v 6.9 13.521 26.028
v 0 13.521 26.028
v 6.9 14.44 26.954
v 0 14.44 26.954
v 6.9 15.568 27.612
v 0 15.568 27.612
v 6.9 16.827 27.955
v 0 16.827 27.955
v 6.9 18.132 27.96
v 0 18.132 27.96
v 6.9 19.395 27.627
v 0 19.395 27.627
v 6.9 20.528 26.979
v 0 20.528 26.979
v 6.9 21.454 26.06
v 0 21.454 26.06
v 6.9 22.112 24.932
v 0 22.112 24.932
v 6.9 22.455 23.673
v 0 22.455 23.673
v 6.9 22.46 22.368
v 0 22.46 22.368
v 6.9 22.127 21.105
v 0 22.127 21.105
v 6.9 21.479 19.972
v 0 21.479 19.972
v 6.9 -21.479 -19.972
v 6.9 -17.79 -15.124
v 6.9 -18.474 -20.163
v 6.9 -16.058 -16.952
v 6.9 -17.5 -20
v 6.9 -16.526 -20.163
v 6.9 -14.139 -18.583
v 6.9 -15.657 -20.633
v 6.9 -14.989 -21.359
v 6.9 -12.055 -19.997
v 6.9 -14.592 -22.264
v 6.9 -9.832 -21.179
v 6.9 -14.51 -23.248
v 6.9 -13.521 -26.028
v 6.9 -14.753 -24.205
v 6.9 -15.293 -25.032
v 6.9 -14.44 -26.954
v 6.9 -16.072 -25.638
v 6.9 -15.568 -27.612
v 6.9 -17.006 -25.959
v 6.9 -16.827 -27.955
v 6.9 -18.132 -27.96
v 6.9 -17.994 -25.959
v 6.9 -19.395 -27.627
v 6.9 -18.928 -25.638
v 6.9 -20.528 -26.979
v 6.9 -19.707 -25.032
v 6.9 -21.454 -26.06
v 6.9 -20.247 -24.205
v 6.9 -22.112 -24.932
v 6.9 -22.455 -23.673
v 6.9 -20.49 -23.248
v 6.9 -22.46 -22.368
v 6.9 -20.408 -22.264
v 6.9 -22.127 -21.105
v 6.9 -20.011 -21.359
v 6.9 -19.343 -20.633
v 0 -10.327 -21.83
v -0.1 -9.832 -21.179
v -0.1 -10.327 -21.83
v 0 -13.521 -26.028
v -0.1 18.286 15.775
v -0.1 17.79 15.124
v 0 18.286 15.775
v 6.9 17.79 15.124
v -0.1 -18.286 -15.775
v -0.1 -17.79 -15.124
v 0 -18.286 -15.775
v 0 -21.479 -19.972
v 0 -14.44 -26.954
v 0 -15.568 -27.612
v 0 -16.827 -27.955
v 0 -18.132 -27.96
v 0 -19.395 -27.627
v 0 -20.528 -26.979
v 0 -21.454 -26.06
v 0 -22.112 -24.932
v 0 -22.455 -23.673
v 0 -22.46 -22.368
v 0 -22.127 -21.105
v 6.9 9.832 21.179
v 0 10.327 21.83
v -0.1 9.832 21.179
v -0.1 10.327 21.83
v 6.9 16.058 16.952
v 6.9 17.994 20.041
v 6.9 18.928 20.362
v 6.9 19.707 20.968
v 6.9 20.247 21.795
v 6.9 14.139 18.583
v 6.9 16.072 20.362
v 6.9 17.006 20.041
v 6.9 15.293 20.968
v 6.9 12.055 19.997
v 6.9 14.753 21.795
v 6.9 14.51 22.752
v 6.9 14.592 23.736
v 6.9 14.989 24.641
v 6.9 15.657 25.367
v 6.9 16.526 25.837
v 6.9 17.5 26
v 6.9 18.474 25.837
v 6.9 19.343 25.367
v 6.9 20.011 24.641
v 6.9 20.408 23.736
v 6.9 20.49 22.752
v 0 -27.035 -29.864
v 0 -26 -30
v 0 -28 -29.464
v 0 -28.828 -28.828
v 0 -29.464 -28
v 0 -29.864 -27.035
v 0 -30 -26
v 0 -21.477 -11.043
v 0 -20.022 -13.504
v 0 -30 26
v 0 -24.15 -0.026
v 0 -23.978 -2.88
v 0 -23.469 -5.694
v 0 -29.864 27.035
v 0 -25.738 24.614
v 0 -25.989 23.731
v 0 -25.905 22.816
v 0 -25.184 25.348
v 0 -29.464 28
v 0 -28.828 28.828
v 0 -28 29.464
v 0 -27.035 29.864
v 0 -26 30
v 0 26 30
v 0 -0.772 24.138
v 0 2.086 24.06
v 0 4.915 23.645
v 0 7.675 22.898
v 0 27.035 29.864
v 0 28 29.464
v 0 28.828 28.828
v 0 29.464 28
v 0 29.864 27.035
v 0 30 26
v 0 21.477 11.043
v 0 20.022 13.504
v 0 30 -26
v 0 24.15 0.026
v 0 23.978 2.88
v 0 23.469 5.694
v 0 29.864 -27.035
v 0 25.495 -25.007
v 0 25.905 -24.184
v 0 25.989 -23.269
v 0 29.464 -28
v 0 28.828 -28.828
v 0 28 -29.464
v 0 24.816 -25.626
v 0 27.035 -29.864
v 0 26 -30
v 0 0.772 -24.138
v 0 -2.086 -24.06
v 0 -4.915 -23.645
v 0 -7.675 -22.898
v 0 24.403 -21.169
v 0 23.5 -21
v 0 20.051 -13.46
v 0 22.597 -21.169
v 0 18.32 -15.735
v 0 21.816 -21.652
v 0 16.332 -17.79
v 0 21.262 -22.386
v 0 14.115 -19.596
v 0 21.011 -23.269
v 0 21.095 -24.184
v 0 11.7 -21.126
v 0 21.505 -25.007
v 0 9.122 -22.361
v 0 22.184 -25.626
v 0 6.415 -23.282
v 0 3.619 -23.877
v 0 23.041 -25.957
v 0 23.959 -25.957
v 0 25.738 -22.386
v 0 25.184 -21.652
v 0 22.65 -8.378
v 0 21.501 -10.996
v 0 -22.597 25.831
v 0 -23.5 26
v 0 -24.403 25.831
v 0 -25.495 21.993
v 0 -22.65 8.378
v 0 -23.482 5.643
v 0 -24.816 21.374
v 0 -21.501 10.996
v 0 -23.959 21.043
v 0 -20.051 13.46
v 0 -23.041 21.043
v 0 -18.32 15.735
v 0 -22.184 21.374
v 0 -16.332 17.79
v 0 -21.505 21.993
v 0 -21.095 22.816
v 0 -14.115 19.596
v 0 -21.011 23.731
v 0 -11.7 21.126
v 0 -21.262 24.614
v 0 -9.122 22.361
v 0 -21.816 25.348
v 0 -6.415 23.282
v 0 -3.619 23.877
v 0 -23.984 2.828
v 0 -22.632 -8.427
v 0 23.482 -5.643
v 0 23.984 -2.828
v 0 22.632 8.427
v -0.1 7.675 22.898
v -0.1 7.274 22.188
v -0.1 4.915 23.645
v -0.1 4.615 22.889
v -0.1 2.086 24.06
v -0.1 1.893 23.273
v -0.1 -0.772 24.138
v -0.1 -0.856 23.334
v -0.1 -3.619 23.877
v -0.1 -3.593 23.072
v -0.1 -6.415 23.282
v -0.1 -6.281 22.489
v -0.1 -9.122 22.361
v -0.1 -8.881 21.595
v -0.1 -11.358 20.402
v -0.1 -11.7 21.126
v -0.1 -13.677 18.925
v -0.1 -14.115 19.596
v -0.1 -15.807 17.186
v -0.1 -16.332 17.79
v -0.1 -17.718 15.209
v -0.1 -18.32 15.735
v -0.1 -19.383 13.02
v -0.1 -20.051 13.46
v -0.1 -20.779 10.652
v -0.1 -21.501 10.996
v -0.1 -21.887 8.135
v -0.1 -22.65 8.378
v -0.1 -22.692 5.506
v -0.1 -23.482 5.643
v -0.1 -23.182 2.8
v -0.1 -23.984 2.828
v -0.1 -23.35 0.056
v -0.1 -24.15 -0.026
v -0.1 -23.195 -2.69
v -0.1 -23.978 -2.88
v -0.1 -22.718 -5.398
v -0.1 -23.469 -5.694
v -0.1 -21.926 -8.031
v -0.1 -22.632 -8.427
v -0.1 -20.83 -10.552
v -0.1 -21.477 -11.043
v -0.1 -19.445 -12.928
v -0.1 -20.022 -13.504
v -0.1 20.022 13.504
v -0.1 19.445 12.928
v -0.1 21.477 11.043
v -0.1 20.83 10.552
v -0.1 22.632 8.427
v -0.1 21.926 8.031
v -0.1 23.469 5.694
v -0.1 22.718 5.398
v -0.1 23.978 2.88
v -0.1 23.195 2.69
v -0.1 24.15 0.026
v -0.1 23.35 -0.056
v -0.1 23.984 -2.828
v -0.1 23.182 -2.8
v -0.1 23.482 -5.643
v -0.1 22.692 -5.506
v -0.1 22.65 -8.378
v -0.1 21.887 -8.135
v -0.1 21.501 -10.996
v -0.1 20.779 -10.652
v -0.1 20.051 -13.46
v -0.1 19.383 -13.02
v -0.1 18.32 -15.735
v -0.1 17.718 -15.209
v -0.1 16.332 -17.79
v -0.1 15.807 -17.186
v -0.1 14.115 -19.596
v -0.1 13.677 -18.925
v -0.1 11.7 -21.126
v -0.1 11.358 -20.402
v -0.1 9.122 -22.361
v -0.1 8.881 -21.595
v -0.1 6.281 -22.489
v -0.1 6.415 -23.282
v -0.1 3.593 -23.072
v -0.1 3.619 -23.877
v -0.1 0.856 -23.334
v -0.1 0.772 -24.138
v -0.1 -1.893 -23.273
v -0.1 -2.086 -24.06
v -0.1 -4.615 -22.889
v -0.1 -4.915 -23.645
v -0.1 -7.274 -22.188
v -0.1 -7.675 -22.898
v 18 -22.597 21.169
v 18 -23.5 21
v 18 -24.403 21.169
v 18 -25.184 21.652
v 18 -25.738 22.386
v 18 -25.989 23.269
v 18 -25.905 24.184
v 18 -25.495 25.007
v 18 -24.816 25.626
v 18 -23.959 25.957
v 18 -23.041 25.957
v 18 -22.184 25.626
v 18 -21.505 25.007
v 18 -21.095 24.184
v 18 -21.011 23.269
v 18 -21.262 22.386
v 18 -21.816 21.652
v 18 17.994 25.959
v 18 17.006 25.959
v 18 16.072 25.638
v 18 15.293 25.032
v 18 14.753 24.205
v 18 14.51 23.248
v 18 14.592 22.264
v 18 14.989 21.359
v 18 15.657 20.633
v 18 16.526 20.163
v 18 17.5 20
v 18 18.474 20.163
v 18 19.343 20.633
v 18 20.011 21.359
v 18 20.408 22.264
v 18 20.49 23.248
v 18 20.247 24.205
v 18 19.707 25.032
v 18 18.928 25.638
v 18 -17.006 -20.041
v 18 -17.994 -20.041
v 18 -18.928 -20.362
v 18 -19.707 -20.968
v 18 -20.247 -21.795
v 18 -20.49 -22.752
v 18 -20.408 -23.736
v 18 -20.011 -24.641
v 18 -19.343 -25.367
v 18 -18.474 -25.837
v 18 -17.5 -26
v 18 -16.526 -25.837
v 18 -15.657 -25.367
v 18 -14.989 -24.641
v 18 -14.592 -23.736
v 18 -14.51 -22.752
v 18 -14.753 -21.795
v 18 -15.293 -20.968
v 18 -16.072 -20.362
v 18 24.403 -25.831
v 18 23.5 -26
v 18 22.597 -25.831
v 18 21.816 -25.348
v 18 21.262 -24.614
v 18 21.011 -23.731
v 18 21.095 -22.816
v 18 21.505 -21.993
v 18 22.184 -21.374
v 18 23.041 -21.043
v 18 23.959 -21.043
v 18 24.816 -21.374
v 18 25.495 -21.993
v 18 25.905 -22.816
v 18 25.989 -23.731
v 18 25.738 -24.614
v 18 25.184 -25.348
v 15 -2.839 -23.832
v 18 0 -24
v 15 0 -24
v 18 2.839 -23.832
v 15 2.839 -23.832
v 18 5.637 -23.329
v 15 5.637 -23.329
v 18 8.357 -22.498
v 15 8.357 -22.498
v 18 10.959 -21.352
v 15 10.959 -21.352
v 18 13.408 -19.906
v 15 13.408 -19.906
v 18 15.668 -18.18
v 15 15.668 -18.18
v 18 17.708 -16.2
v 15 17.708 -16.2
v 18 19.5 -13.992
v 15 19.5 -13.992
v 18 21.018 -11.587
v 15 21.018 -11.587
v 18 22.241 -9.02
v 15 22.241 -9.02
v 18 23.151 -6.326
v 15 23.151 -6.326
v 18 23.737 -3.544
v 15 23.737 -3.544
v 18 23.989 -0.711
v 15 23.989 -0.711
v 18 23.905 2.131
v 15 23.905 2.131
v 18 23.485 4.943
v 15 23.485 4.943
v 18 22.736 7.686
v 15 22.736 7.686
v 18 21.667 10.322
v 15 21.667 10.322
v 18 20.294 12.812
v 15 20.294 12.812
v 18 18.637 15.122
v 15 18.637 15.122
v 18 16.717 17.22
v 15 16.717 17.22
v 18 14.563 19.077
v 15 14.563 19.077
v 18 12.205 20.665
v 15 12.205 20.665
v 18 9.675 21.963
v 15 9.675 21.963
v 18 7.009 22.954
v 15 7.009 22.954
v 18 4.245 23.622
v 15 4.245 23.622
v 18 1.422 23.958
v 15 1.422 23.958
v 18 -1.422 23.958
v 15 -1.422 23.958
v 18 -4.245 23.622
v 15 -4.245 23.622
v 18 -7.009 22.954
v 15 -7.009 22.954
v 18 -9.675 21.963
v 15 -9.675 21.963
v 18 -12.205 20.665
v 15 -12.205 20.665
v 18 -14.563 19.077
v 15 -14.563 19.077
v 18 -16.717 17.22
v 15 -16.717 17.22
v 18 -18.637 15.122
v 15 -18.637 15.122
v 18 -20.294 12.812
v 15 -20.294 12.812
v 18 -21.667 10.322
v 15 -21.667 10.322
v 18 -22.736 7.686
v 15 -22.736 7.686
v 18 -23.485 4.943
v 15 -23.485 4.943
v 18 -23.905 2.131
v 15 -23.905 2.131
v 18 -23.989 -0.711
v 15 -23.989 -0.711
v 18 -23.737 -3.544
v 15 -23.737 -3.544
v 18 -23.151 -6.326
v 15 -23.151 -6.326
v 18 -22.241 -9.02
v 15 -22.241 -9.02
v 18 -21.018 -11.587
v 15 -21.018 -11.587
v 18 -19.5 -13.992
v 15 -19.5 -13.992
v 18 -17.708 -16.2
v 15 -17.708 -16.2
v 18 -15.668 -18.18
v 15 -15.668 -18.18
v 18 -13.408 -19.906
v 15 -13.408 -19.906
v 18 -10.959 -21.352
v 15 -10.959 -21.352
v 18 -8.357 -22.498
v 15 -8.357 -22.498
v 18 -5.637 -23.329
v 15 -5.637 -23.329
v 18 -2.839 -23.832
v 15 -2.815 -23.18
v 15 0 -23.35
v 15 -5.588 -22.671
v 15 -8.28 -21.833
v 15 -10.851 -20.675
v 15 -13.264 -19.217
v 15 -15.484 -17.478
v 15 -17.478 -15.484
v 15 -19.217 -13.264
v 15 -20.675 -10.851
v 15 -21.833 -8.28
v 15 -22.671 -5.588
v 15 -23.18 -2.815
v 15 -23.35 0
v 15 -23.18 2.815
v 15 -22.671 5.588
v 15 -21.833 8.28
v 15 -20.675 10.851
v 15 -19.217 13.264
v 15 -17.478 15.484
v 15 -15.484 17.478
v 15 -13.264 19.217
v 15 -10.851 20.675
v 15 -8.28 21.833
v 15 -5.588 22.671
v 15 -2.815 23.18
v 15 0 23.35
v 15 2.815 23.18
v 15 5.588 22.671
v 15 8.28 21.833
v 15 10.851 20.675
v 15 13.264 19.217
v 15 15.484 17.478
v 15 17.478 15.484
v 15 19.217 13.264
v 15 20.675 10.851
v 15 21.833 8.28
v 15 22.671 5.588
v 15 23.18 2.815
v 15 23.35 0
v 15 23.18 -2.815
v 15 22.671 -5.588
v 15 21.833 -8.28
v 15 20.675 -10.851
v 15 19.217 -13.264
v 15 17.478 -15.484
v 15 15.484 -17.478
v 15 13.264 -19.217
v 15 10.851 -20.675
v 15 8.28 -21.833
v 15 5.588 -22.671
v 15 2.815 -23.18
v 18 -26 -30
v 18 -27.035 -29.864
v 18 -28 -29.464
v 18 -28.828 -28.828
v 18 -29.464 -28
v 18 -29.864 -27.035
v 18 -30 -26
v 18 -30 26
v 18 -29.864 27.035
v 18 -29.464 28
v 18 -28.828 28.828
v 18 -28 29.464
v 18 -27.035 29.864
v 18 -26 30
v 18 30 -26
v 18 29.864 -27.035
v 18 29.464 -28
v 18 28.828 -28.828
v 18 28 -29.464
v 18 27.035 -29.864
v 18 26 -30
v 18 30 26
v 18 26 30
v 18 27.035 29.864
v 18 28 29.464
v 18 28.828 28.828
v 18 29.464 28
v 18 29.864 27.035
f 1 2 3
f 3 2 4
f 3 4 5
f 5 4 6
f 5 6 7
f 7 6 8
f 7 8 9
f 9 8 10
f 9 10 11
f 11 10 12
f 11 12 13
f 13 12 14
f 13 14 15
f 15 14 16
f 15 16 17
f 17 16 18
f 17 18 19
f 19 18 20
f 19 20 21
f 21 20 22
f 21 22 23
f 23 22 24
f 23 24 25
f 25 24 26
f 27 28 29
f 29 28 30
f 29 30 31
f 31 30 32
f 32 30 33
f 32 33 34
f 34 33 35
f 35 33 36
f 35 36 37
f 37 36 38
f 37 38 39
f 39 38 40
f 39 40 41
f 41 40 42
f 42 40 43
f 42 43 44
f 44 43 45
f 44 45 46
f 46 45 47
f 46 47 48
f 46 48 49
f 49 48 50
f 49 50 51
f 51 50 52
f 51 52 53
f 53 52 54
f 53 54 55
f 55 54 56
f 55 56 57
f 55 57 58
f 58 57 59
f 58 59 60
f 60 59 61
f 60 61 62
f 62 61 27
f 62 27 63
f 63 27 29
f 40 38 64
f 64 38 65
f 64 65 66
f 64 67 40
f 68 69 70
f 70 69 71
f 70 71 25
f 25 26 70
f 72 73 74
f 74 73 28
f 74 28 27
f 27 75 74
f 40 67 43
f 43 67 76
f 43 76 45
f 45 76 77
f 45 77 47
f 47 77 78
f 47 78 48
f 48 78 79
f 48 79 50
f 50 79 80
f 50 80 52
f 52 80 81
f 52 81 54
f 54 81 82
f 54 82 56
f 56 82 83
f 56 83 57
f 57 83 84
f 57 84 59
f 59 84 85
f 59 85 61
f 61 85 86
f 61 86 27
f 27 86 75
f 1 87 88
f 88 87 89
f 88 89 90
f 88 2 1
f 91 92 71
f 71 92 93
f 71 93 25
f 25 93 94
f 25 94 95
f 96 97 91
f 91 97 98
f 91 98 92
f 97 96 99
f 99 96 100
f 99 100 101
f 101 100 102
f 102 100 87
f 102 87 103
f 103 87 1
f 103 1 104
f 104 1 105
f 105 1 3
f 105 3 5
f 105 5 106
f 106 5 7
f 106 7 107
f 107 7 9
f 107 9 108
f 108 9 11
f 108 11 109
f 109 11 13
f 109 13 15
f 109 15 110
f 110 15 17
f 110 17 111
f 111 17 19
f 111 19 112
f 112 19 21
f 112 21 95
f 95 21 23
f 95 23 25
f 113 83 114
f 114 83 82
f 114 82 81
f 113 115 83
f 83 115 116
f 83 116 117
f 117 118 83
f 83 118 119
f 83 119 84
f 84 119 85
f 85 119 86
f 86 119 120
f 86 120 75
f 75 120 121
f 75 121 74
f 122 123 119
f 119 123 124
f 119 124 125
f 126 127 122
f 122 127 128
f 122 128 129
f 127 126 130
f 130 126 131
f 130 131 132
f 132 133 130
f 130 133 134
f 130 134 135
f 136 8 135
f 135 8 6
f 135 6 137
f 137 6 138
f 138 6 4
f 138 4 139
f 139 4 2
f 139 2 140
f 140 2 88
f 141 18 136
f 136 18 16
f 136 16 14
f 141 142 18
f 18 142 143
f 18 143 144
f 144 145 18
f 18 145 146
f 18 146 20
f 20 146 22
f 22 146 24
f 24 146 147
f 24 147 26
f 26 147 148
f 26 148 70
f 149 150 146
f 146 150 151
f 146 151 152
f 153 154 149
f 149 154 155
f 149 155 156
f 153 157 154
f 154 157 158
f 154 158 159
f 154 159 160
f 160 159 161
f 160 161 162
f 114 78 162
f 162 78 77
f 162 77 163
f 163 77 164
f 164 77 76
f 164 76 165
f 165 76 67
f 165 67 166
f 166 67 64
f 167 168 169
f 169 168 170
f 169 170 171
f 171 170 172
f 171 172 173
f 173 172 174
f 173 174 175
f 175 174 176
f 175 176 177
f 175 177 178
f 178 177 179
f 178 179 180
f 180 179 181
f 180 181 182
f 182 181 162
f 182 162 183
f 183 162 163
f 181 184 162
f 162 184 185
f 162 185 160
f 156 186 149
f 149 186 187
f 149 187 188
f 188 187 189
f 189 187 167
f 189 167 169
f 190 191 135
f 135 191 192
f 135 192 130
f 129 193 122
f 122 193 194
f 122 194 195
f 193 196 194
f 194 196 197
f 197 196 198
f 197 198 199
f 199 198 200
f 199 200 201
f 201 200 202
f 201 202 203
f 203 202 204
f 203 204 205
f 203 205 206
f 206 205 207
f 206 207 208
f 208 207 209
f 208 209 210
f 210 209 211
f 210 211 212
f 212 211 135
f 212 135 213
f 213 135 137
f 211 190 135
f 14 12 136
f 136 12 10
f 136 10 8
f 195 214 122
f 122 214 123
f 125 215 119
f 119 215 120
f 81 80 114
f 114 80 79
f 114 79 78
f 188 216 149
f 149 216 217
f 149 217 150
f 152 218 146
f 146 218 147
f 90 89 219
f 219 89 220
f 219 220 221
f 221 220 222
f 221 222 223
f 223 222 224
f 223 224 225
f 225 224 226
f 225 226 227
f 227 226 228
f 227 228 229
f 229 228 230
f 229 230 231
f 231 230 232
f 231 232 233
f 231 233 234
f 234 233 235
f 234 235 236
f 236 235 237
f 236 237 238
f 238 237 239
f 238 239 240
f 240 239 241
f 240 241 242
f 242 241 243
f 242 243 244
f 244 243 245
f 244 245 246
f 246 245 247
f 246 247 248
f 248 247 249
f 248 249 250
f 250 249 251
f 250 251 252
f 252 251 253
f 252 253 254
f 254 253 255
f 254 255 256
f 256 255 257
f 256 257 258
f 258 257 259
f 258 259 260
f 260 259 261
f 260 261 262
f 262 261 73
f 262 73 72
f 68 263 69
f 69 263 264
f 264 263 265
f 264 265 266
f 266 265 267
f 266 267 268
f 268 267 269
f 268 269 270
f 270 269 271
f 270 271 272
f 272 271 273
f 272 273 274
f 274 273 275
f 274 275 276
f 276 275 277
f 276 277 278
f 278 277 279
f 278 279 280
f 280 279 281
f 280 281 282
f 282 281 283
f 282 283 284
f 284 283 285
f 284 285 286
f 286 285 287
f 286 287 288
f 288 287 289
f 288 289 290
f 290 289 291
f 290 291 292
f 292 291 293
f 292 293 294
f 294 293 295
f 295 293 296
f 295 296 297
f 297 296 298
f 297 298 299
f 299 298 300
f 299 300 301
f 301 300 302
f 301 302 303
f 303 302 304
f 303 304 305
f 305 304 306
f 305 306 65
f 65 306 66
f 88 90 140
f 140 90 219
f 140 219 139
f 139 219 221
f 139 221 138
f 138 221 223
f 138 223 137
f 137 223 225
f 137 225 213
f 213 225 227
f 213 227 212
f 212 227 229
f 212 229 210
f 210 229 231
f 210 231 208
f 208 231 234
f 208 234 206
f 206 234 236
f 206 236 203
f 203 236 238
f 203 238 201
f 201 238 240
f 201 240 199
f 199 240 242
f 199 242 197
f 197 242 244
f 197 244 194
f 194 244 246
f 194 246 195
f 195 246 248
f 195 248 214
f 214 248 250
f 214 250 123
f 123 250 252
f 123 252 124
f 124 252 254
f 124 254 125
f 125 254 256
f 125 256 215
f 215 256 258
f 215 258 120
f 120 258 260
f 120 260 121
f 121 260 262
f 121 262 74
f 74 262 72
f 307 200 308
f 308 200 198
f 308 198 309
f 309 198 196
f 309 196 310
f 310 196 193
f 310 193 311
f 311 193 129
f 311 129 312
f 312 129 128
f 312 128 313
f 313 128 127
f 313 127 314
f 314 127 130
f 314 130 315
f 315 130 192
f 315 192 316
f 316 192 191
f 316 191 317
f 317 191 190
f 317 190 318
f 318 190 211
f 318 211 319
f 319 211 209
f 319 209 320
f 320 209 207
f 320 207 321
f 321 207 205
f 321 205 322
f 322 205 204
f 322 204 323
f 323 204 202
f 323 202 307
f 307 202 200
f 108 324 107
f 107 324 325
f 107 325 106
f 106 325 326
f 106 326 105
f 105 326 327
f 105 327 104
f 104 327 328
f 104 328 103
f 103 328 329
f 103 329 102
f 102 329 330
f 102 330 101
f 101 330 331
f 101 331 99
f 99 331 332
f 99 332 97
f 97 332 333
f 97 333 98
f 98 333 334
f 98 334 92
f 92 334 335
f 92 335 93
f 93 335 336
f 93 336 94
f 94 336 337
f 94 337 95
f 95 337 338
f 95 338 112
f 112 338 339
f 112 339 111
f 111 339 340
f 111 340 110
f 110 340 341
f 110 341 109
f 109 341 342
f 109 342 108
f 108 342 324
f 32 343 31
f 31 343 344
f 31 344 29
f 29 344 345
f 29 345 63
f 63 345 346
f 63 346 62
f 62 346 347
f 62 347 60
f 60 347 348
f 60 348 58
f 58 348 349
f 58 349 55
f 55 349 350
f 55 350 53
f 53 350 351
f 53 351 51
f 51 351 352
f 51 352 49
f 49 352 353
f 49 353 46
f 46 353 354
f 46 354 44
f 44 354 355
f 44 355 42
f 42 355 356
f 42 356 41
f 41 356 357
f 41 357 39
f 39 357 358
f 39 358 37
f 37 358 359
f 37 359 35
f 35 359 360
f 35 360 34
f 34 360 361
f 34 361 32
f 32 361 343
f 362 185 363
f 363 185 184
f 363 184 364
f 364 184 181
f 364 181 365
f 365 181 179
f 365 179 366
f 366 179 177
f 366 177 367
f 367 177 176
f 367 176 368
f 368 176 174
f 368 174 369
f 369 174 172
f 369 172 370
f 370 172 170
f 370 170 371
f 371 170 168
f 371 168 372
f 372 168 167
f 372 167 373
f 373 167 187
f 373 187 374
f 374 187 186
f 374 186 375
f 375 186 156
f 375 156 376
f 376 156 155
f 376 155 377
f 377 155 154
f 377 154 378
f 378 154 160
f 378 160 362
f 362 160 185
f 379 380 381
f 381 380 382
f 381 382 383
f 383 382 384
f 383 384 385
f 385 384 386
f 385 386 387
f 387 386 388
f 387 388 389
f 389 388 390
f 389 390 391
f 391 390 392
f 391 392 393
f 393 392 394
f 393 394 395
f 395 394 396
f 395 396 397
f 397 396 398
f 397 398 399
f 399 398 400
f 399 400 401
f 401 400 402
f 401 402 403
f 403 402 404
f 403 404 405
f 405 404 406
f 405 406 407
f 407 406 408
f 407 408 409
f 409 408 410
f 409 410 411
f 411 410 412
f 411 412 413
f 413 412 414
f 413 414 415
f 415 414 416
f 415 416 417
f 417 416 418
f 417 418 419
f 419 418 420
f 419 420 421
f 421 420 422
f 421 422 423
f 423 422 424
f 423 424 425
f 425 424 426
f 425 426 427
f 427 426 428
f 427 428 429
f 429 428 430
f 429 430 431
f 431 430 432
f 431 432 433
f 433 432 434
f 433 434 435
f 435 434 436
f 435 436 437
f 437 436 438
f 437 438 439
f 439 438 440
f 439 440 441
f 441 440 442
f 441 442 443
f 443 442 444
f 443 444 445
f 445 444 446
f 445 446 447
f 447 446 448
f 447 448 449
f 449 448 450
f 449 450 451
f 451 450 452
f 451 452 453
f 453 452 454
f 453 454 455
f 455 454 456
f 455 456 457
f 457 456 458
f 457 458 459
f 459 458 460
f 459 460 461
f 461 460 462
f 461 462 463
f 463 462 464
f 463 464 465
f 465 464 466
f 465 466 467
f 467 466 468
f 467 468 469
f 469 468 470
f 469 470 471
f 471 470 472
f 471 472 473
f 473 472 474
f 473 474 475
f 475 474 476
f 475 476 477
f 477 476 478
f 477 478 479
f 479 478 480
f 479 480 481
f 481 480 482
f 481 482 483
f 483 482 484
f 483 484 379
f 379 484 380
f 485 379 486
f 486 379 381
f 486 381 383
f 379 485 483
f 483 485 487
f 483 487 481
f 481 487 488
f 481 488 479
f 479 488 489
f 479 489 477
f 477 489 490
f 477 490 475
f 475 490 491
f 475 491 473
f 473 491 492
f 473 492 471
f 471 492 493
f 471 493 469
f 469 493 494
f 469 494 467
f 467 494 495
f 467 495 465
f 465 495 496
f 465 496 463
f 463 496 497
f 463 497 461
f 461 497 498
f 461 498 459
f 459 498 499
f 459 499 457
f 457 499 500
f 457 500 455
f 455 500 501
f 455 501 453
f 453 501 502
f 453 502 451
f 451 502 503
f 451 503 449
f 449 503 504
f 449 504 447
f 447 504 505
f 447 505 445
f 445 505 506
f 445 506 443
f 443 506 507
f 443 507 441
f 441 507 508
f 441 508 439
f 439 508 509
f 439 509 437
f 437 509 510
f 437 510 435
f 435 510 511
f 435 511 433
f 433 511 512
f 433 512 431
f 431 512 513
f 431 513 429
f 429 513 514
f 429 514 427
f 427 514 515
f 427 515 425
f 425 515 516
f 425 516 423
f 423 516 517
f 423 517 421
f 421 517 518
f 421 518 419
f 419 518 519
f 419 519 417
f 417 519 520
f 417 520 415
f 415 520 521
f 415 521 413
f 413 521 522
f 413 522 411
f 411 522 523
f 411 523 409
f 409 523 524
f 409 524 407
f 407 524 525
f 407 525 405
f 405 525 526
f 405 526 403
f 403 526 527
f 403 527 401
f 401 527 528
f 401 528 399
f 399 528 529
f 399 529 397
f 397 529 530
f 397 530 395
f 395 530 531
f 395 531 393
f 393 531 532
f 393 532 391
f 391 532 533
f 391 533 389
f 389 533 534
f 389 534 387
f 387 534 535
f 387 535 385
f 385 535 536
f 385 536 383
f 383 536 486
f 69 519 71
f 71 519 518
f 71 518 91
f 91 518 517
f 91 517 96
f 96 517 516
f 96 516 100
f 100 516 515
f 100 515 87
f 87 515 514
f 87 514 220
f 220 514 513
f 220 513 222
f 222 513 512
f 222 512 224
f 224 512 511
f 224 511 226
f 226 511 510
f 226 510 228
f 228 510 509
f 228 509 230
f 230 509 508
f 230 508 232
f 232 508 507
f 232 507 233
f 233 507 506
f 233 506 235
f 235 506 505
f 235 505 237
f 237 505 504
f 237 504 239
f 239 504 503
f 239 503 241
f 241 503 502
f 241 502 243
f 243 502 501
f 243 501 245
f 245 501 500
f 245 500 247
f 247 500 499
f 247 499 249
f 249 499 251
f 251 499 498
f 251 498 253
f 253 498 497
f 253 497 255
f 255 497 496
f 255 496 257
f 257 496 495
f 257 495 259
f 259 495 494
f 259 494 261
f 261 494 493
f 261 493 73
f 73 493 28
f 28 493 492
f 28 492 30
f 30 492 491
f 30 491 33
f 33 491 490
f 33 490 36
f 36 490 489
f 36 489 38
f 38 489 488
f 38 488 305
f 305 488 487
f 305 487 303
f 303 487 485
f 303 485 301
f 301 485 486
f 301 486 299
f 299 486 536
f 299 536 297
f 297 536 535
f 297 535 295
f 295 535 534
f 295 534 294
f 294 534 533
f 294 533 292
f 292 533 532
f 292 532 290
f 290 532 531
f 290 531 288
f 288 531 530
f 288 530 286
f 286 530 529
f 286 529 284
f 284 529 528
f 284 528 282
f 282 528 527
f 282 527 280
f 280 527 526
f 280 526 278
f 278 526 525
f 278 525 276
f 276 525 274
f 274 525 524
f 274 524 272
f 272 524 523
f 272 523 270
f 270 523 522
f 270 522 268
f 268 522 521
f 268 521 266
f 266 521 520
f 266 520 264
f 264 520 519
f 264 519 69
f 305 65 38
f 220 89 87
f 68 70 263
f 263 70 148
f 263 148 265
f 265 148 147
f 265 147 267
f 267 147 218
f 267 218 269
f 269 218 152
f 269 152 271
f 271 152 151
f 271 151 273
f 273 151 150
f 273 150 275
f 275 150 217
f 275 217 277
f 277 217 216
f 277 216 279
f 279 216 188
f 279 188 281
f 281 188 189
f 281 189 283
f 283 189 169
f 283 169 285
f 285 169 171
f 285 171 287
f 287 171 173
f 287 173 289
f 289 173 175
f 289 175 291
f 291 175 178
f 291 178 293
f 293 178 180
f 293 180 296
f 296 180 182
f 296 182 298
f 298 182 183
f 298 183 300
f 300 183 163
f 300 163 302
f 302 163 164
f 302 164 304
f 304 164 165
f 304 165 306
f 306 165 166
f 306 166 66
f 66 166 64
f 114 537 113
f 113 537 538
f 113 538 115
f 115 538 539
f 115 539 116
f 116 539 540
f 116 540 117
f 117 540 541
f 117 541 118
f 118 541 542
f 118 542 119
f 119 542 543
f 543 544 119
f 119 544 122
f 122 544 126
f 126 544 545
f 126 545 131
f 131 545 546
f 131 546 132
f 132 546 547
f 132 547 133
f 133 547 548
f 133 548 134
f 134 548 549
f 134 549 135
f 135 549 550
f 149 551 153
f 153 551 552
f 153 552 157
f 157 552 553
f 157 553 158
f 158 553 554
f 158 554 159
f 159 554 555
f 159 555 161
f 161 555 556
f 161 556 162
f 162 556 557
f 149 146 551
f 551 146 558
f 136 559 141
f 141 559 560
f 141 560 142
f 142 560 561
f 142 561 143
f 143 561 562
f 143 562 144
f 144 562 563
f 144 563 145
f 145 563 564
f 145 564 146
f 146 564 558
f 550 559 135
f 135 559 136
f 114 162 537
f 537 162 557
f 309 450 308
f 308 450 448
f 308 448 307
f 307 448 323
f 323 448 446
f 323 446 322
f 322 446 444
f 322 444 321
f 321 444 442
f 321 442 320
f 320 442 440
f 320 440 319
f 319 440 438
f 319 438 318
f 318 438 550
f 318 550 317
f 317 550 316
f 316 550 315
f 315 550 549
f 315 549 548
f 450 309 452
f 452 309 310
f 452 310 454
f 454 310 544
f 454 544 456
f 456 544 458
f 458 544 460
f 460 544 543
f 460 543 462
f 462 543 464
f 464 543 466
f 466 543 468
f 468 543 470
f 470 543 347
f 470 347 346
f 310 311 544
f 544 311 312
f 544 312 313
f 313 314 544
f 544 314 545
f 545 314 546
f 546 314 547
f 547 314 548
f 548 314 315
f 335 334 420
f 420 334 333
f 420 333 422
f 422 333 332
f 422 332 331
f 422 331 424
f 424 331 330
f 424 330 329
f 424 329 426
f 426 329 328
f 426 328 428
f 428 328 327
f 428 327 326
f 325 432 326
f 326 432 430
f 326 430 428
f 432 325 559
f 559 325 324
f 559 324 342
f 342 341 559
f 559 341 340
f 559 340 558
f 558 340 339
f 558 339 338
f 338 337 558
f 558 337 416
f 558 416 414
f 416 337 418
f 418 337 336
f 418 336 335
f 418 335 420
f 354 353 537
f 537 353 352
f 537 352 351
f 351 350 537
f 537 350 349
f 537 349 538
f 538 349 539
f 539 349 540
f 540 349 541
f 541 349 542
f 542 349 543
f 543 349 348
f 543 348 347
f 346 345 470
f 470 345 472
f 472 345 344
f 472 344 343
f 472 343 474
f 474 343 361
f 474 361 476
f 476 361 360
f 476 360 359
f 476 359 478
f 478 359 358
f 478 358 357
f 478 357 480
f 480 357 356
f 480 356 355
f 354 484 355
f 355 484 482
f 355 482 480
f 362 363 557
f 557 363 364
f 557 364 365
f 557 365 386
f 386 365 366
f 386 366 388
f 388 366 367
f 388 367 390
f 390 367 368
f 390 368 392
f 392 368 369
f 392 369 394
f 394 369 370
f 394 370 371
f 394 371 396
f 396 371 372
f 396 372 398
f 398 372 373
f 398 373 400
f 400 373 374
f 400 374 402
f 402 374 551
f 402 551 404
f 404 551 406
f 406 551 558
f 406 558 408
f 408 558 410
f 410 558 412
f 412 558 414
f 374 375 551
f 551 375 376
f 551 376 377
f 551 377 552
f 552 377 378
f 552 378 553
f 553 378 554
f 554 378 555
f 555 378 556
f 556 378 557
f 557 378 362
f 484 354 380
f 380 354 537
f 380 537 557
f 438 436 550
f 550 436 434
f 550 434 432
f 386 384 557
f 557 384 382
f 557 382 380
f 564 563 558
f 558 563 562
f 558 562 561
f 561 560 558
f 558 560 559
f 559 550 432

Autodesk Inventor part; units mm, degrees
ref_plane "YZ Plane" through (0, 0, 0) normal (1, 0, 0) x (0, 1, 0)
ref_plane "XZ Plane" through (0, 0, 0) normal (0, 1, 0) x (-1, 0, 0)
ref_plane "XY Plane" through (0, 0, 0) normal (0, 0, 1) x (1, 0, 0)
sketch "Sketch1" plane through (0, 0, 0) normal (1, 0, 0) x (0, 1, 0)
  line L0 (30, 30) -> (-30, 30)
  line L1 (-30, 30) -> (-30, -30)
  line L2 (-30, -30) -> (30, -30)
  line L3 (30, -30) -> (30, 30)
  line L4 (30, 30) -> (-30, -30) construction
  line L5 (-30, 30) -> (30, -30) construction
  point P0 (0, 0)
  dimension "d0" = 60
  dimension "d1" = 60
extrude "Extrusion1" add sketch "Sketch1" along normal blind 18
fillet "Fillet1" radius 4 4 edges at (9, 30, 30) (9, 30, -30) (9, -30, 30) (9, -30, -30)
sketch "Sketch2" plane through (0, 0, 0) normal (-1, 0, 0) x (0, 0, 1)
  circle A0 centre (0, 0) radius 24.15
  dimension "d5" = 48.3
extrude "Extrusion2" add sketch "Sketch2" along normal blind 0.1
sketch "Sketch3" plane through (-0.1, 0, 0) normal (-1, 0, 0) x (0, 0, 1)
  circle A0 centre (0, 0) radius 23.35
  dimension "d8" = 46.7
extrude "Extrusion3" cut sketch "Sketch3" against normal through all
sketch "Sketch4" plane through (18, 0, 0) normal (1, 0, 0) x (0, 0, -1)
  circle A0 centre (0, 0) radius 24
  dimension "d11" = 48
extrude "Extrusion4" cut sketch "Sketch4" against normal blind 3
sketch "Sketch5" plane through (0, 0, 0) normal (-1, 0, 0) x (0, 0, 1)
  point P0 (0, 0)
sketch "Sketch6" plane through (0, 0, 0) normal (-1, 0, 0) x (0, 0, 1)
  circle A0 centre (23, 17.5) radius 3
  line L0 (30, 26) -> (30, -26) projected
  line L1 (-26, 30) -> (26, 30) projected
  circle A1 centre (-23, -17.5) radius 3
  line L2 (-30, -26) -> (-30, 26) projected
  line L3 (26, -30) -> (-26, -30) projected
  circle A2 centre (-23.5, 23.5) radius 2.5
  circle A3 centre (23.5, -23.5) radius 2.5
  point P0 (0, 0)
  dimension "d15" = 7
  dimension "d16" = 12.5
  dimension "d17" = 6
  dimension "d18" = 6
  dimension "d19" = 7
  dimension "d20" = 12.5
  dimension "d21" = 23.5
  dimension "d22" = 23.5
  dimension "d23" = 23.5
  dimension "d24" = 23.5
  dimension "d25" = 5
  dimension "d26" = 5
extrude "Extrusion5" cut sketch "Sketch6" against normal through all
sketch "Sketch7" plane through (-0.1, 0, 0) normal (-1, 0, 0) x (0, 0, 1)
  circle A0 centre (-23, -17.5) radius 3 projected
  circle A1 centre (23, 17.5) radius 3 projected
  line L0 (-23, -17.5) -> (23, 17.5) construction
  line L1 (-19.9724, -21.4791) -> (26.0276, 13.5209)
  line L2 (19.9724, 21.4791) -> (-26.0276, -13.5209)
  arc A2 (-26.0276, -13.5209) -> (-19.9724, -21.4791) centre (-23, -17.5) ccw
  arc A3 (26.0276, 13.5209) -> (19.9724, 21.4791) centre (23, 17.5) ccw
  point P0 (0, 0)
  point P1 (0, 0)
  dimension "d29" = 10
extrude "Extrusion6" cut sketch "Sketch7" against normal blind 7
thread "Thread1" size "M5x0.8" class "6H" standard "ANSI Metric M Profile" full length
thread "Thread2" size "M5x0.8" class "6H" standard "ANSI Metric M Profile" full length
properties part number "Mounting Bracket"
